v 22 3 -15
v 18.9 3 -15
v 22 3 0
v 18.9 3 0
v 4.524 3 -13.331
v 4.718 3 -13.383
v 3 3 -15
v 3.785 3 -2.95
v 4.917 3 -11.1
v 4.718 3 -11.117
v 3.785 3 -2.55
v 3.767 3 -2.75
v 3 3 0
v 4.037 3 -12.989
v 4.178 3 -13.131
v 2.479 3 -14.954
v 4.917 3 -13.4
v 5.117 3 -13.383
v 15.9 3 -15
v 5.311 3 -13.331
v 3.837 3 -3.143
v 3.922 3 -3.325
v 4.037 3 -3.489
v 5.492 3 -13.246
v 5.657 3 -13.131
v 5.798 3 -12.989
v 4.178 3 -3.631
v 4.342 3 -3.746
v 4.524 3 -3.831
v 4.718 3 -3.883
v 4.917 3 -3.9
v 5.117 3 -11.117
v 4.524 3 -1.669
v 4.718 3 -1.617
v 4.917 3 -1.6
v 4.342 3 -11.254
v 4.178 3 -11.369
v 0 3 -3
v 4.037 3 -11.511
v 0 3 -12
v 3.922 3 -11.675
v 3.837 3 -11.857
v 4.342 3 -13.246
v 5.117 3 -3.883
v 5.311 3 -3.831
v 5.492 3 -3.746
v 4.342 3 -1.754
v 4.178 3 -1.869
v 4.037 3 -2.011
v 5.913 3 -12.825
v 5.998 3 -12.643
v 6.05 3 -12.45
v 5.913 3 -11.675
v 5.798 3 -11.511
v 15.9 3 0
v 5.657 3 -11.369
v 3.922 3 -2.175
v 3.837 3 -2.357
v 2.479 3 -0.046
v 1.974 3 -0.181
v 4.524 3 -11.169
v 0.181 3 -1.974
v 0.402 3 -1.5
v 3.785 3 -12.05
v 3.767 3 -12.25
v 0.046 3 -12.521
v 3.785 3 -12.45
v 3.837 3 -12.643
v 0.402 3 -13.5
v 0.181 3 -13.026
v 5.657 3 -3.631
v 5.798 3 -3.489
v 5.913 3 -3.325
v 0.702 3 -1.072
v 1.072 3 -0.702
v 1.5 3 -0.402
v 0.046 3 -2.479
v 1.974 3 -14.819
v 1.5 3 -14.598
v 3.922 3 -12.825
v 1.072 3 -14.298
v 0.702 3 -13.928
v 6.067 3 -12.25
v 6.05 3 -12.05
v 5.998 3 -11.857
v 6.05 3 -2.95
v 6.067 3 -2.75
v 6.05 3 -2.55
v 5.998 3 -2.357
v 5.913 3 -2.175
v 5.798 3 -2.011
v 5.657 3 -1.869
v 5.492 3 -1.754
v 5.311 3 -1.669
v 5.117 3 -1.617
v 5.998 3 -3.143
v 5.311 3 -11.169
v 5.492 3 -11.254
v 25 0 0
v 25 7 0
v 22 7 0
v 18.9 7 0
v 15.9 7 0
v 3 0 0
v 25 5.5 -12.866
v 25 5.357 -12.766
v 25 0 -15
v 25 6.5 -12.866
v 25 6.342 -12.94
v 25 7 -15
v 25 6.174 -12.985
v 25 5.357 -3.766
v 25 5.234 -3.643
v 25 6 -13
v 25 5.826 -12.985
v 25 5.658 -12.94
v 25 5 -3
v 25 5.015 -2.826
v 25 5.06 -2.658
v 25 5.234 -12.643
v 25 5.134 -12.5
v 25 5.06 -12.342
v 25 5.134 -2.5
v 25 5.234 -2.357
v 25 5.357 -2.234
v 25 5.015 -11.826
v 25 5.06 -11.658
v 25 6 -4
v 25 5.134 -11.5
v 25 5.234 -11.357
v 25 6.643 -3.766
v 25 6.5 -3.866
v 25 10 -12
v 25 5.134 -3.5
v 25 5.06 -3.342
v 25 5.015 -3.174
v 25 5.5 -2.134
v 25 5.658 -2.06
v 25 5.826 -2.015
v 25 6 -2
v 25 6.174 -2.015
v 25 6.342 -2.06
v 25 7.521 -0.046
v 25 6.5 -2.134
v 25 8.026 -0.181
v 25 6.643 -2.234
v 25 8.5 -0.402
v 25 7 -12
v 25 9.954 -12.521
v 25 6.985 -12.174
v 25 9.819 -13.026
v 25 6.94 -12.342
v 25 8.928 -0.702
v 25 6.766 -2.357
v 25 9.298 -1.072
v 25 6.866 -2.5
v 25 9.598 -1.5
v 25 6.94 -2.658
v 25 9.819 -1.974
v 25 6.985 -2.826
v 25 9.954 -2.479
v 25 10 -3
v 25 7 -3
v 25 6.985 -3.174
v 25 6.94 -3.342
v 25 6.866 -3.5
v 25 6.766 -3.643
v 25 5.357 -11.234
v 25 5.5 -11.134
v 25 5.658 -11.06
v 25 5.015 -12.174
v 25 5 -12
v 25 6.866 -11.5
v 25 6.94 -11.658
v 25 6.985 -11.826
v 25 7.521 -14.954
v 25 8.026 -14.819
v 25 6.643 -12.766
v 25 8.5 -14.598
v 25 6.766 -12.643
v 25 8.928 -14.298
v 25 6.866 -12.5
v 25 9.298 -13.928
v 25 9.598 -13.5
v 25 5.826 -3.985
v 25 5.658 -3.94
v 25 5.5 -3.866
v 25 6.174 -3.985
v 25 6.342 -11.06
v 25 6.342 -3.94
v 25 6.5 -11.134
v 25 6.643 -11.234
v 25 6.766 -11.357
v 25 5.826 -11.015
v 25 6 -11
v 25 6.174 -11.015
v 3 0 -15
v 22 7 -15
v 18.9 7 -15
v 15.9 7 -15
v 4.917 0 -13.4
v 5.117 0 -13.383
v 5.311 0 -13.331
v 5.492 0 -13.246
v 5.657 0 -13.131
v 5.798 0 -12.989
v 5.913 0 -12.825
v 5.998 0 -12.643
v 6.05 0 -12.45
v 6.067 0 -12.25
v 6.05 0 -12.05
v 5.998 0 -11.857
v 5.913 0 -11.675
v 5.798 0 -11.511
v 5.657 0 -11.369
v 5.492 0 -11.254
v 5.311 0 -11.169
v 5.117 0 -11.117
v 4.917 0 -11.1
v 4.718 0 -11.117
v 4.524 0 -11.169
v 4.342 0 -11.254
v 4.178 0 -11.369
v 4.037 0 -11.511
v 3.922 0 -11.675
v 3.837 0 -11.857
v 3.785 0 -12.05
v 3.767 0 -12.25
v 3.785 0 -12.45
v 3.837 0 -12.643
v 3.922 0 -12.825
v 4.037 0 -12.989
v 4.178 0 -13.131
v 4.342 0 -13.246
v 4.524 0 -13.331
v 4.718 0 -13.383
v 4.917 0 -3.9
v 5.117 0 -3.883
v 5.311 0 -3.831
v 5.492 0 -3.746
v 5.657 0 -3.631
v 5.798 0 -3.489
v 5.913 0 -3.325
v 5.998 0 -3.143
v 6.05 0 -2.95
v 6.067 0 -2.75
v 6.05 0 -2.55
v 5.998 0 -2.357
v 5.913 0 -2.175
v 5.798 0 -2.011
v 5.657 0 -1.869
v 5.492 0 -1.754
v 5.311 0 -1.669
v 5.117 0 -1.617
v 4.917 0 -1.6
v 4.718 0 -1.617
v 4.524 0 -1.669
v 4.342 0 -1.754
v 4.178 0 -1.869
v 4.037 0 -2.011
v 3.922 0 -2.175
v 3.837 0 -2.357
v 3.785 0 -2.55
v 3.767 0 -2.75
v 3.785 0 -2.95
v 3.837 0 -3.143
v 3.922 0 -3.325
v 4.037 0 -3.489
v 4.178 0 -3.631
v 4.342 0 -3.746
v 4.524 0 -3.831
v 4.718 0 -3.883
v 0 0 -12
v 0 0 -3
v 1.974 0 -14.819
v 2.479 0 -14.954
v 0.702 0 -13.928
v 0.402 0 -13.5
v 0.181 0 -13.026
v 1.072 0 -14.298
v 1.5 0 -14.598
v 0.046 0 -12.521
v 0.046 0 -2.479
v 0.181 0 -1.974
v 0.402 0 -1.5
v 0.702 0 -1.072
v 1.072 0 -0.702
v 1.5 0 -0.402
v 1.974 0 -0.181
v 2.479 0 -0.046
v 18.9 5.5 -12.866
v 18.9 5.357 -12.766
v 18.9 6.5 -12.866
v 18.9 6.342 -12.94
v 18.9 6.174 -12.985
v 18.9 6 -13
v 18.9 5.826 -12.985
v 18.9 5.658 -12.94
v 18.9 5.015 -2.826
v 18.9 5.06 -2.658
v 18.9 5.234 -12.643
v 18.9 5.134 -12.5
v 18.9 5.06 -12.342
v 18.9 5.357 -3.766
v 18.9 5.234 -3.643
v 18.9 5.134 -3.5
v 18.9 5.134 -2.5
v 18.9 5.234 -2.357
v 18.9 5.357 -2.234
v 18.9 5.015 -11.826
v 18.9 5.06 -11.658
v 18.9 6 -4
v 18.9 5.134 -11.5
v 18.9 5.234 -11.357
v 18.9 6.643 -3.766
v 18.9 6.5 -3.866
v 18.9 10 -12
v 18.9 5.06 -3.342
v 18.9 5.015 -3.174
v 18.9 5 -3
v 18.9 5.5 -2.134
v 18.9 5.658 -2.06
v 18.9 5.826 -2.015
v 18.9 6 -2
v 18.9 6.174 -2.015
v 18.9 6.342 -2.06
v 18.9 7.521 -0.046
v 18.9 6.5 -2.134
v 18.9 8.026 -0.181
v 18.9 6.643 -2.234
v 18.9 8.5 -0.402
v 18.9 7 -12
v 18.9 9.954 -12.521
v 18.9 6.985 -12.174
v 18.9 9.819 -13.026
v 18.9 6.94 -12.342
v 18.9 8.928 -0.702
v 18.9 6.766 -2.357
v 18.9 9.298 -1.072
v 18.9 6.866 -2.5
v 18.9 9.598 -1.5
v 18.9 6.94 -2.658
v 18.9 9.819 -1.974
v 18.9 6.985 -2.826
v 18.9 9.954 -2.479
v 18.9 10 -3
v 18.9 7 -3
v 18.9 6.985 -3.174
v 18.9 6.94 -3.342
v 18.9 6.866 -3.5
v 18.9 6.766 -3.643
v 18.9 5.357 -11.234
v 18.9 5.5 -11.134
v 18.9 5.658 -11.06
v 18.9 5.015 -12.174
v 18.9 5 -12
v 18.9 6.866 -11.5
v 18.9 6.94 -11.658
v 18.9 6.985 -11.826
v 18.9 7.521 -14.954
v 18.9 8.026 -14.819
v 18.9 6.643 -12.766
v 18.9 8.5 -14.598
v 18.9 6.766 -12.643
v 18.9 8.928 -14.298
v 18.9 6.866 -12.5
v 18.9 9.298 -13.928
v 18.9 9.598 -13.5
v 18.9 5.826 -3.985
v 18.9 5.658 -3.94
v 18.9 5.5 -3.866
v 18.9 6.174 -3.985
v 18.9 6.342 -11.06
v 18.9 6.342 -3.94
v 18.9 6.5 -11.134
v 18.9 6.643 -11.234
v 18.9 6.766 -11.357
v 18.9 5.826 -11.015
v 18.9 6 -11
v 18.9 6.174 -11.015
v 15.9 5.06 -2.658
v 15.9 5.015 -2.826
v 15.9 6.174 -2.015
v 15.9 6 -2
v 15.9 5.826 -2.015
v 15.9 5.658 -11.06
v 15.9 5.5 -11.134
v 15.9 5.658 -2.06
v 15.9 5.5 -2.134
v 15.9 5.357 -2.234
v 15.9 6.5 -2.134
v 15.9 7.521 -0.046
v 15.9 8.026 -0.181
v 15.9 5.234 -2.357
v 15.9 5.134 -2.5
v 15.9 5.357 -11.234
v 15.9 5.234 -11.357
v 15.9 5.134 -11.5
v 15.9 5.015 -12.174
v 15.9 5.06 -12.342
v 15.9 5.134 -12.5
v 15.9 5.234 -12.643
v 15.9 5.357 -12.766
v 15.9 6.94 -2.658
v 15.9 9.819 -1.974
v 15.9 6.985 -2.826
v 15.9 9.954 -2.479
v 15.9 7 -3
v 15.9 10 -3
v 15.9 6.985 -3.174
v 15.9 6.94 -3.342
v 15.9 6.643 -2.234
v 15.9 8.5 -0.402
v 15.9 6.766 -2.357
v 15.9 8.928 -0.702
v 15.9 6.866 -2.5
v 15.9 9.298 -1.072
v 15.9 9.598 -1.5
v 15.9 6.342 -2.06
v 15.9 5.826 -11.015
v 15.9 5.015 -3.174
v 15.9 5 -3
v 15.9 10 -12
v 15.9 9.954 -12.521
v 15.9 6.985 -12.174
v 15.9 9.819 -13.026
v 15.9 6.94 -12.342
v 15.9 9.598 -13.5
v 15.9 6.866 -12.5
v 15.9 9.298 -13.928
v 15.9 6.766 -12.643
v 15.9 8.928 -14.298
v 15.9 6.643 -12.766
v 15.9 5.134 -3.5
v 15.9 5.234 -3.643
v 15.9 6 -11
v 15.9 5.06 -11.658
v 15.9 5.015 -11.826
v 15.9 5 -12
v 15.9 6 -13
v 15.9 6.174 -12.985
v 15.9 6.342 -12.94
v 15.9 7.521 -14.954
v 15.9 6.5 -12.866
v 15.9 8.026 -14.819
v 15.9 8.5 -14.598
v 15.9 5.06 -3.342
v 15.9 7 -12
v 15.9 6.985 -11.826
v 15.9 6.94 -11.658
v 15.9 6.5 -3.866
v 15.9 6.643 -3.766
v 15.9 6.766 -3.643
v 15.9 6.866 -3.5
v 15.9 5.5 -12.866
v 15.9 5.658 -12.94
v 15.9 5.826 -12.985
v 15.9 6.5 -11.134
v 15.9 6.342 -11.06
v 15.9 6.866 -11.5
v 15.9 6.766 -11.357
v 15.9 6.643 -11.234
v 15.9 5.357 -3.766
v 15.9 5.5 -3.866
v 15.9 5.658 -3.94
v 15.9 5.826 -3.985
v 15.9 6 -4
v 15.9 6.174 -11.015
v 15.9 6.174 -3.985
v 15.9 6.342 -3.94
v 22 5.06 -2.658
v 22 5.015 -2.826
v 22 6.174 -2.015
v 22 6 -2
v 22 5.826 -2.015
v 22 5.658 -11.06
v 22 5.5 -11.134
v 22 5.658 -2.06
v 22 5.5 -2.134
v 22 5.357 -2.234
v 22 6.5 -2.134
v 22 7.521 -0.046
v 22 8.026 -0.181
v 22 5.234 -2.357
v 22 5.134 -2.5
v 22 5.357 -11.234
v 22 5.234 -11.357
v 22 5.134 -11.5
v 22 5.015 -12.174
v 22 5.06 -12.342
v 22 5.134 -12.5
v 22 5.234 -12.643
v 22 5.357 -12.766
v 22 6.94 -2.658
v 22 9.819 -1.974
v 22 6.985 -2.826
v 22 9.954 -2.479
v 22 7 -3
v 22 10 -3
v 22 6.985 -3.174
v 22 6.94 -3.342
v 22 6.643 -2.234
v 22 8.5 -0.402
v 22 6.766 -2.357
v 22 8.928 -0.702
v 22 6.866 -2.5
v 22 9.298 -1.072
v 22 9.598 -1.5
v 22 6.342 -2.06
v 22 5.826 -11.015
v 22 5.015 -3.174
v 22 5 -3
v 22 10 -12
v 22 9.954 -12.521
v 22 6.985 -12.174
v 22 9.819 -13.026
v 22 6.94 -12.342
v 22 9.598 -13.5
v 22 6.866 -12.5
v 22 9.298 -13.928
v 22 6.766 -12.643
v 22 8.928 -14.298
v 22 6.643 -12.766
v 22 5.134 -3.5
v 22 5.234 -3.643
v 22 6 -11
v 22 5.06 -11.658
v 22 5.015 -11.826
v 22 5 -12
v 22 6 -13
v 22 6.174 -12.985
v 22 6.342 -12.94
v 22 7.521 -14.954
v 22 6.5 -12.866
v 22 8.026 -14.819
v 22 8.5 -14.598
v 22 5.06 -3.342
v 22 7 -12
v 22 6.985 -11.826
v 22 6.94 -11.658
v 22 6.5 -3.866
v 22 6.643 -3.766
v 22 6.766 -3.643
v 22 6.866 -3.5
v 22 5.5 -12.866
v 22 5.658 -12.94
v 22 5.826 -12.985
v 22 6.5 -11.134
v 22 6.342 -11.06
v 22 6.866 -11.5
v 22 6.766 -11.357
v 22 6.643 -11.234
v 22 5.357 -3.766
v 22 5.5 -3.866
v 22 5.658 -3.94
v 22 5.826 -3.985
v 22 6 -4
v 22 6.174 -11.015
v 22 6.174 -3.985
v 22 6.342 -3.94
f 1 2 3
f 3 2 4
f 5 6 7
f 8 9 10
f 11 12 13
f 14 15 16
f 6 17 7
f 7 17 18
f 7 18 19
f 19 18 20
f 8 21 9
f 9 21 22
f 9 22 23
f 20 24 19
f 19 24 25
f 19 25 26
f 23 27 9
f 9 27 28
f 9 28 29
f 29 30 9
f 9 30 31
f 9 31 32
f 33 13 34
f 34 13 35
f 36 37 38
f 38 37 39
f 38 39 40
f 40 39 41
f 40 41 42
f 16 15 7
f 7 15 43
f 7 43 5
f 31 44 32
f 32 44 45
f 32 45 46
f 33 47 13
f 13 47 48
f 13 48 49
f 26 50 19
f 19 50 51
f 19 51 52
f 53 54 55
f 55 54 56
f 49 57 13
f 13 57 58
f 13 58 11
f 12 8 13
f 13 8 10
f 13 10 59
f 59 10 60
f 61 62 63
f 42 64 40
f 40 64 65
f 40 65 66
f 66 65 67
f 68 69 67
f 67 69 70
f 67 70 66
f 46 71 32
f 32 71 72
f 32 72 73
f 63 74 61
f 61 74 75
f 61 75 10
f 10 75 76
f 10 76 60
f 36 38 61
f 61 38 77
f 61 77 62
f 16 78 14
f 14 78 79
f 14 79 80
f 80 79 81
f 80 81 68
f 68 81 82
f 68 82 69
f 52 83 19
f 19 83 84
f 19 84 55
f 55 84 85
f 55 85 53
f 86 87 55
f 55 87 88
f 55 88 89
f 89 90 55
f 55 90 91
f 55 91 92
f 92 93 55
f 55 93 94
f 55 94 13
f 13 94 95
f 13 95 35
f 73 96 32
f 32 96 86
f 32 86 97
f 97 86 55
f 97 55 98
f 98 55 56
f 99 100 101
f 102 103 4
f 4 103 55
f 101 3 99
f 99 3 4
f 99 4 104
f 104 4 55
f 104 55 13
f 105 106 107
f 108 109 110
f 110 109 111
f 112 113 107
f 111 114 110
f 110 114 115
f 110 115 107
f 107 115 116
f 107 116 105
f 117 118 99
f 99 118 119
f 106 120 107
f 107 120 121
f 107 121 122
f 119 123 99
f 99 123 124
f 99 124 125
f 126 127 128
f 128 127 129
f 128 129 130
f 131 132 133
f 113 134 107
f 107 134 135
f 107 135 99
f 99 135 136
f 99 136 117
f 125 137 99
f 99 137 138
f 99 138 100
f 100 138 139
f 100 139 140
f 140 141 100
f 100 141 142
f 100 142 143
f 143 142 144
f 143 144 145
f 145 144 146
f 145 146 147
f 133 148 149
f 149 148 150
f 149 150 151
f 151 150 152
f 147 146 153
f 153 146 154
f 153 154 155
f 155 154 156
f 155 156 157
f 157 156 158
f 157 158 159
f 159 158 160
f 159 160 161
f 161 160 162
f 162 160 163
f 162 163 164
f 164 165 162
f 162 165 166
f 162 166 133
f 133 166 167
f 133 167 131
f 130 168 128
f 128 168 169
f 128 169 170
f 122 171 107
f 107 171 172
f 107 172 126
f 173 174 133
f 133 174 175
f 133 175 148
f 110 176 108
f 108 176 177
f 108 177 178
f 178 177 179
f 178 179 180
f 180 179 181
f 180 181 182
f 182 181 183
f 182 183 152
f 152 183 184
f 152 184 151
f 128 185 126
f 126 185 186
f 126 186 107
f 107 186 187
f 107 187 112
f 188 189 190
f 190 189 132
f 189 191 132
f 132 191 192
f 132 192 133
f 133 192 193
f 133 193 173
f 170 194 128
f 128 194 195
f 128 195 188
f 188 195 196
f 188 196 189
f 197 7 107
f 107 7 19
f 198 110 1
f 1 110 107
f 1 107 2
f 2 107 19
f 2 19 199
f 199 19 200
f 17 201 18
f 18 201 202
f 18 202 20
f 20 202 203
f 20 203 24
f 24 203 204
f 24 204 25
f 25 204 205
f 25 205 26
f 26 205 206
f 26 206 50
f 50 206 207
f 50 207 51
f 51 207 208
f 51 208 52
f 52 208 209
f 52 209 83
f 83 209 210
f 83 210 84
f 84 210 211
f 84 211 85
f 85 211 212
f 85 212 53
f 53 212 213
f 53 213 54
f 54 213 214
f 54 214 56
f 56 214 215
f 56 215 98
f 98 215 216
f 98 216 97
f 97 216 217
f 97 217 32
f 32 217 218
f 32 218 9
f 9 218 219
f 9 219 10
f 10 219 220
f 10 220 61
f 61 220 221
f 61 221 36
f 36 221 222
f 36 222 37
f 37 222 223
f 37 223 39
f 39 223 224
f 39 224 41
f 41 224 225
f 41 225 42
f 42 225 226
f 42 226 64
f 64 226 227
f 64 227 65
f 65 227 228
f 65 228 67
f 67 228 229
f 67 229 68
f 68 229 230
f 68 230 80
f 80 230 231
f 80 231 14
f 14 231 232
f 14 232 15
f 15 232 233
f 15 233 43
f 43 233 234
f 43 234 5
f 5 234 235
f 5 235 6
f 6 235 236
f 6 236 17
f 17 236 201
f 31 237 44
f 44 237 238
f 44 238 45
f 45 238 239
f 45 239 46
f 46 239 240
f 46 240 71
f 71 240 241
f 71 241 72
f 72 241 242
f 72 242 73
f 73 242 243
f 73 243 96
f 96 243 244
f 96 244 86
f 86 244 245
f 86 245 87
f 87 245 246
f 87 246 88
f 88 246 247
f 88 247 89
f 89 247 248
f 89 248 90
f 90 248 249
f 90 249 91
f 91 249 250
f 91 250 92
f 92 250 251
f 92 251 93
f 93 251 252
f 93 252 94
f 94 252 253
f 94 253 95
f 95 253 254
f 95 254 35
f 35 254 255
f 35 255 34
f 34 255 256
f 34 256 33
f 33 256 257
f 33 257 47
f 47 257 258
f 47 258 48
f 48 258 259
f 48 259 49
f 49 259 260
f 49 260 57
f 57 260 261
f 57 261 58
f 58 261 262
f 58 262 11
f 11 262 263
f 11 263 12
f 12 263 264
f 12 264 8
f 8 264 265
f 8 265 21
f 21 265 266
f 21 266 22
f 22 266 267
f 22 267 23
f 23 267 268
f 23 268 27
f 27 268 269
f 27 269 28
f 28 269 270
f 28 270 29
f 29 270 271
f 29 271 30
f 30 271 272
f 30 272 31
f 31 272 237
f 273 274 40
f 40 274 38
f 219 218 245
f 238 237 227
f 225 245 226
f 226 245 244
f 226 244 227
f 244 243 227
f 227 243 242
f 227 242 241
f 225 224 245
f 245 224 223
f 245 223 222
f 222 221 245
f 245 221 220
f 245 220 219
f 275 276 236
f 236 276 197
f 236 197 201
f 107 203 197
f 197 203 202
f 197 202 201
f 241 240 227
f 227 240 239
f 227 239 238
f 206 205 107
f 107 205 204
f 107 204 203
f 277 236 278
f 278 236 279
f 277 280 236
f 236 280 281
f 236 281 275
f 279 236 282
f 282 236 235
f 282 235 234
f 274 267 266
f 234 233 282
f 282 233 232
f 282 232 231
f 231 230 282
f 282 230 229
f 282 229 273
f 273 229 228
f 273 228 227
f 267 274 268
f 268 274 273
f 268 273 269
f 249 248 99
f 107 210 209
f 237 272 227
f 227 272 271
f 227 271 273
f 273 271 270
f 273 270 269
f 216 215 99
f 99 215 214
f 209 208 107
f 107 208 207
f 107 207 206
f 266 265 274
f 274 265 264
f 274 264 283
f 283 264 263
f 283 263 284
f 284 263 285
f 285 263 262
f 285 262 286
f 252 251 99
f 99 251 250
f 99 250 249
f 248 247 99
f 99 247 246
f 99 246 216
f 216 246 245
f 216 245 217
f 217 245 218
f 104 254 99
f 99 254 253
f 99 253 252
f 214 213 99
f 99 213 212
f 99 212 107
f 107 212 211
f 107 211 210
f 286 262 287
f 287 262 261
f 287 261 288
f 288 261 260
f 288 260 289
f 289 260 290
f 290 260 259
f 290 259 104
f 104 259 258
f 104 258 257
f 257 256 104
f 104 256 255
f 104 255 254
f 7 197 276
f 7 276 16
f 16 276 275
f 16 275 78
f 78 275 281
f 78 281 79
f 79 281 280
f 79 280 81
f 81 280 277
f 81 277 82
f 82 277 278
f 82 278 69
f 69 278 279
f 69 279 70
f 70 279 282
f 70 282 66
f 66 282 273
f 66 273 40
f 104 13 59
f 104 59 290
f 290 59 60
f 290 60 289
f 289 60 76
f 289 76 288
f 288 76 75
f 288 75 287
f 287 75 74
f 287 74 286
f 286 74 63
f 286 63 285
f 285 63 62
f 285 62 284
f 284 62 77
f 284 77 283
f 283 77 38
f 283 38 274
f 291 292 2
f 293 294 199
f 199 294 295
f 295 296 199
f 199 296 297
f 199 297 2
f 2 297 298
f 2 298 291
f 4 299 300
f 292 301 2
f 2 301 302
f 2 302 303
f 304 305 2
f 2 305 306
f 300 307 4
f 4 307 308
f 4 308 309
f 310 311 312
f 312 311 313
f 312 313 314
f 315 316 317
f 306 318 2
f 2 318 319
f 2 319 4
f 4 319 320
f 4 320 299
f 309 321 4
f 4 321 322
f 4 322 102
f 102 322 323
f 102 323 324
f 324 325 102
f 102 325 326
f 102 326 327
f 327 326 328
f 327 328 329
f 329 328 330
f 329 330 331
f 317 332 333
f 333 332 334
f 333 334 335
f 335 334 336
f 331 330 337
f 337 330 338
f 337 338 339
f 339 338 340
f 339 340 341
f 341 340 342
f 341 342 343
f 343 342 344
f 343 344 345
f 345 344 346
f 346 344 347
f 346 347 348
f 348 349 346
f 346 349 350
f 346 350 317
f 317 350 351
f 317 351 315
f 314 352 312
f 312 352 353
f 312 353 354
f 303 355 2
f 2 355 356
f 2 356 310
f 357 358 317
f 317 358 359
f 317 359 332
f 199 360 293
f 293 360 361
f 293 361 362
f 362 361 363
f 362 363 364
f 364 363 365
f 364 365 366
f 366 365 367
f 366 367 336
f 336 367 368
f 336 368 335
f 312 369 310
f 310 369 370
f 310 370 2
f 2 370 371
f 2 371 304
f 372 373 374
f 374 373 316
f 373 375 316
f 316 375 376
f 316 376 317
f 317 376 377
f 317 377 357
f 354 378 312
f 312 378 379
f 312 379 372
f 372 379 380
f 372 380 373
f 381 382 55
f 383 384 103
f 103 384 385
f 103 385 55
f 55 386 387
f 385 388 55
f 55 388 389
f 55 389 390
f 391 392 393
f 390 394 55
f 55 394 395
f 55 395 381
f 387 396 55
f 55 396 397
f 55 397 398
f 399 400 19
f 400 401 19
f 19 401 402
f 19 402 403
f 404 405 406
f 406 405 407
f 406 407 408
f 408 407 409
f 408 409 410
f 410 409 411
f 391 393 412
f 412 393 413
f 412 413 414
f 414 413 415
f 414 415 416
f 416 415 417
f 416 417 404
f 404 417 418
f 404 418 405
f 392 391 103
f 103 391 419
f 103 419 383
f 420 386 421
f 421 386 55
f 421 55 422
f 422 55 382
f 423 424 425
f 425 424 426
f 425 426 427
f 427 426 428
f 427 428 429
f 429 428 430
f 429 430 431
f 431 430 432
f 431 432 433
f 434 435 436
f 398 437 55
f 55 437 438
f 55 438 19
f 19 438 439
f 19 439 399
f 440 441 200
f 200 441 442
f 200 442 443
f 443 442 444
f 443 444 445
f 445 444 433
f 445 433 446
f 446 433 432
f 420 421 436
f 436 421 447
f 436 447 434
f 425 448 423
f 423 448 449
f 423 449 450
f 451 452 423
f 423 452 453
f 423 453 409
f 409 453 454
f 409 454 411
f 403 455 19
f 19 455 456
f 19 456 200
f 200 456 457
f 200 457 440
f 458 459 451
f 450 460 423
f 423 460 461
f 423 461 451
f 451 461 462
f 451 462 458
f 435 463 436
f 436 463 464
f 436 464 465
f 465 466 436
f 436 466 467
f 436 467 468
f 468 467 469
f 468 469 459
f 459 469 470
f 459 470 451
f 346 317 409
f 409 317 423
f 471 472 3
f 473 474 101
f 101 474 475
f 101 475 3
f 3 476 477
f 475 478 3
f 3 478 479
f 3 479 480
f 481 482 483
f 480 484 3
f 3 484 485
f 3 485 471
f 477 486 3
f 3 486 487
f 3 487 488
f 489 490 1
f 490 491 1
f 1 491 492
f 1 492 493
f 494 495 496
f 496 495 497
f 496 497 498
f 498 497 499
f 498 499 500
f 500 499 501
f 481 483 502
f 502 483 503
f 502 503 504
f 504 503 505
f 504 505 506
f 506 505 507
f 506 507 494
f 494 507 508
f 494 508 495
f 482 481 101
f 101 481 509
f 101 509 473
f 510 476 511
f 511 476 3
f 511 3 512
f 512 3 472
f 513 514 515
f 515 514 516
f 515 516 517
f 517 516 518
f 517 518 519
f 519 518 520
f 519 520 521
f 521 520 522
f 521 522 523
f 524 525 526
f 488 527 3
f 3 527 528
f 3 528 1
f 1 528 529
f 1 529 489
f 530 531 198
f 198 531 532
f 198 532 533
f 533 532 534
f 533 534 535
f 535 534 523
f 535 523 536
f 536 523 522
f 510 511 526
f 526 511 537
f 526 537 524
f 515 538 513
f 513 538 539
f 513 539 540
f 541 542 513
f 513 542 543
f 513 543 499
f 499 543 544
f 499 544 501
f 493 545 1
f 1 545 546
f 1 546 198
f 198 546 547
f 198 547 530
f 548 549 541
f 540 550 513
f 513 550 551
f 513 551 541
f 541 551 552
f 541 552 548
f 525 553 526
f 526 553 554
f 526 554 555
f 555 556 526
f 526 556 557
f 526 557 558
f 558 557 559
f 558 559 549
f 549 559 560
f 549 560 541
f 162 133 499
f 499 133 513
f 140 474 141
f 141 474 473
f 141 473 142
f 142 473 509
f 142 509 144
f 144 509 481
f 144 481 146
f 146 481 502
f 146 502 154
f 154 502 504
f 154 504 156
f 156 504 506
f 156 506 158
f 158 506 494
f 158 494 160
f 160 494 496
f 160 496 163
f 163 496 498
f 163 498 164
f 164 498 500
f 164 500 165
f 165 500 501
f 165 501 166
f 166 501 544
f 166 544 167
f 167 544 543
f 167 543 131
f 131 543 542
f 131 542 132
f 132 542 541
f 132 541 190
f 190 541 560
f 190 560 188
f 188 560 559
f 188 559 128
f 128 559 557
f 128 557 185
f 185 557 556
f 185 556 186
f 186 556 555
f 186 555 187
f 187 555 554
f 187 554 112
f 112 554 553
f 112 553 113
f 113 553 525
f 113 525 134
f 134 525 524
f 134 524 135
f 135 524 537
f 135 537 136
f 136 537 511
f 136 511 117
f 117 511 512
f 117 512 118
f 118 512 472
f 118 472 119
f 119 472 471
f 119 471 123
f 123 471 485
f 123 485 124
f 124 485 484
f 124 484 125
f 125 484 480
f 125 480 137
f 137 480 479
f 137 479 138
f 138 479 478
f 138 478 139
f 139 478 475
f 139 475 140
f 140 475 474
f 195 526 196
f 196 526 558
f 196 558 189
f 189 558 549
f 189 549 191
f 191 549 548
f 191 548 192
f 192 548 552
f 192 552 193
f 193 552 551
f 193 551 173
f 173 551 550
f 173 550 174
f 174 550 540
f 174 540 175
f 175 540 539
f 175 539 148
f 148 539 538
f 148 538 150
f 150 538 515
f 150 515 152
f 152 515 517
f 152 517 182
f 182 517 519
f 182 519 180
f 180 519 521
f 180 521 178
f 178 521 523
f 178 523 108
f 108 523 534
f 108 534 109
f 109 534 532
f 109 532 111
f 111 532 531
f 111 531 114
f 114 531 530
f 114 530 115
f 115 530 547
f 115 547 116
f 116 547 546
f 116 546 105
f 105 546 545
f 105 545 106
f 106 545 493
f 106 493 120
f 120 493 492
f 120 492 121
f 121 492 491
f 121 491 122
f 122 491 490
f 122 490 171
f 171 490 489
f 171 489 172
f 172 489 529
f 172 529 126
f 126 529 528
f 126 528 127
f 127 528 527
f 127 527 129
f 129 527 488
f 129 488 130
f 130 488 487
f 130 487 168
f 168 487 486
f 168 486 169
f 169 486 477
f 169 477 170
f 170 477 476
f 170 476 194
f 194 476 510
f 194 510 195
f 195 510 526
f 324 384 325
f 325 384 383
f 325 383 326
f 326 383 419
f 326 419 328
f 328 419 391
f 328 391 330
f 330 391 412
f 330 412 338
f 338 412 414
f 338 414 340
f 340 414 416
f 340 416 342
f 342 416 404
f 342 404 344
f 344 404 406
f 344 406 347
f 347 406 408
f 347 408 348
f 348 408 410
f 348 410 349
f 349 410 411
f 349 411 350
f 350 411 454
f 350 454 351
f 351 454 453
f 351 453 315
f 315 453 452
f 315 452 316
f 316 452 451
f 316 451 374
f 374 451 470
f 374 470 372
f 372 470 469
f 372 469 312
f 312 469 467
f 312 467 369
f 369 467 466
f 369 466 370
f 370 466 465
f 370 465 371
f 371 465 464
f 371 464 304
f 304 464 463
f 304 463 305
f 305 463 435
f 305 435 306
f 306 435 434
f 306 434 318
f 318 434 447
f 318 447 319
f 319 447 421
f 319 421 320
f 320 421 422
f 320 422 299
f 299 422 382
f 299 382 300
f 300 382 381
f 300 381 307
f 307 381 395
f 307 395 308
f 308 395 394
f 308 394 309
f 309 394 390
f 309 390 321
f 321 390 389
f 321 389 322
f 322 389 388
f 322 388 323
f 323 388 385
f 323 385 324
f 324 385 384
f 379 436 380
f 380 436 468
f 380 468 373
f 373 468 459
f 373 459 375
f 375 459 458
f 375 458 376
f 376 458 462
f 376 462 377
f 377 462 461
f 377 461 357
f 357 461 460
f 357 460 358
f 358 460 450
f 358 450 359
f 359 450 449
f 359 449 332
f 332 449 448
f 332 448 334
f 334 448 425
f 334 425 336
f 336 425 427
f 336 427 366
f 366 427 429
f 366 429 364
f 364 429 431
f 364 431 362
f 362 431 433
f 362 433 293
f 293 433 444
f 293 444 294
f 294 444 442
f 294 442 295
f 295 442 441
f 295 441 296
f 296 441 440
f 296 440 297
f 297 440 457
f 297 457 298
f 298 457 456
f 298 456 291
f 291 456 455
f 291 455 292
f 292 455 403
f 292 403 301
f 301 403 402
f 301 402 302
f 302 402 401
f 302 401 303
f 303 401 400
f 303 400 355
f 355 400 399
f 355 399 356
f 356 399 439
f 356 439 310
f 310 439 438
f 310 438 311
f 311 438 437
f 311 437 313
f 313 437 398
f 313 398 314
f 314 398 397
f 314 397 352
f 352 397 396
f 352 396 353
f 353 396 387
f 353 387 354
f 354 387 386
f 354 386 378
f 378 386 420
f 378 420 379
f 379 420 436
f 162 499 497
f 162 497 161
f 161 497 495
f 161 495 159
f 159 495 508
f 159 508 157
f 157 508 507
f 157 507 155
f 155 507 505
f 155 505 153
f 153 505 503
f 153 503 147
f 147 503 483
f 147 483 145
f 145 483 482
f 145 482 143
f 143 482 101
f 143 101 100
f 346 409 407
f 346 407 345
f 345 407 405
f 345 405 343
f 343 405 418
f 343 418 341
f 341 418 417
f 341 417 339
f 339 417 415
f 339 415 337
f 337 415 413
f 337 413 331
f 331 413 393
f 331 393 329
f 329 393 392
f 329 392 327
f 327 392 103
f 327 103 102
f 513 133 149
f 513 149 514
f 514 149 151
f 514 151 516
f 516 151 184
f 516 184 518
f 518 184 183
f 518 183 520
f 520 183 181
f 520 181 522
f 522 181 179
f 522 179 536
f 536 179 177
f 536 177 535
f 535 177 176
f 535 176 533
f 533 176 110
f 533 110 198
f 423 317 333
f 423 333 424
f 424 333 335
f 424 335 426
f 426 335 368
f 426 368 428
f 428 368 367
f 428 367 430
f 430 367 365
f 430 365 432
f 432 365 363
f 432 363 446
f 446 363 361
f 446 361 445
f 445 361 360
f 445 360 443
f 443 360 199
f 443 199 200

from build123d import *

# Parameters (mm, degrees)
SKETCH1_W               = 25
SKETCH1_H               = 15
SKETCH1_R               = 1.15
BOSS_EXTRUDE1_DEPTH     = 3
FILLET1_R               = 3
SKETCH1_3_W             = 3
SKETCH1_3_H             = 15
BOSS_EXTRUDE2_DEPTH     = 10
CUT_EXTRUDE1_DEPTH      = 25.037678756
CUT_EXTRUDE1_DEPTH_BACK = 25.037678756
SKETCH2_R               = 1
FILLET2_R               = 3


with BuildPart() as part:
    # Sketch1 → Boss-Extrude1 (new body)
    with BuildSketch(Plane(origin=(0, 0, 0), x_dir=(1, 0, 0), z_dir=(0, 1, 0))):
        with Locations((12.5, 7.5)):
            Rectangle(SKETCH1_W, SKETCH1_H)
        with Locations((4.917465758, 2.75)):
            Circle(SKETCH1_R, mode=Mode.SUBTRACT)
        with Locations((4.917465758, 12.25)):
            Circle(SKETCH1_R, mode=Mode.SUBTRACT)
    extrude(amount=BOSS_EXTRUDE1_DEPTH)

    # Fillet1
    fillet1_edges = [part.edges().sort_by_distance(p)[0] for p in [
        (0, 1.5, -15),
        (25, 1.5, -15),
        (25, 1.5, 0),
        (0, 1.5, 0),
    ]]
    fillet(fillet1_edges, radius=FILLET1_R)

    # Sketch1<3> → Boss-Extrude2 (add)
    with BuildSketch(Plane(origin=(0, 0, 0), x_dir=(1, 0, 0), z_dir=(0, 1, 0))):
        with Locations((17.4, 7.5)):
            Rectangle(SKETCH1_3_W, SKETCH1_3_H)
        with Locations((23.5, 7.5)):
            Rectangle(SKETCH1_3_W, SKETCH1_3_H)
    extrude(amount=BOSS_EXTRUDE2_DEPTH)

    # Sketch2 → Cut-Extrude1 (cut, two sides: drawn at the far end of the back side and taken through both)
    with BuildSketch(Plane.ZY.offset(-15.9).offset(-CUT_EXTRUDE1_DEPTH_BACK)):
        with Locations((-12, 6)):
            Circle(SKETCH2_R)
        with Locations((-3, 6)):
            Circle(SKETCH2_R)
    extrude(amount=CUT_EXTRUDE1_DEPTH + CUT_EXTRUDE1_DEPTH_BACK, mode=Mode.SUBTRACT)

    # Fillet2
    fillet2_edges = [part.edges().sort_by_distance(p)[0] for p in [
        (23.5, 10, 0),
        (17.4, 10, 0),
        (23.5, 10, -15),
        (17.4, 10, -15),
    ]]
    fillet(fillet2_edges, radius=FILLET2_R)


solid = part.part
